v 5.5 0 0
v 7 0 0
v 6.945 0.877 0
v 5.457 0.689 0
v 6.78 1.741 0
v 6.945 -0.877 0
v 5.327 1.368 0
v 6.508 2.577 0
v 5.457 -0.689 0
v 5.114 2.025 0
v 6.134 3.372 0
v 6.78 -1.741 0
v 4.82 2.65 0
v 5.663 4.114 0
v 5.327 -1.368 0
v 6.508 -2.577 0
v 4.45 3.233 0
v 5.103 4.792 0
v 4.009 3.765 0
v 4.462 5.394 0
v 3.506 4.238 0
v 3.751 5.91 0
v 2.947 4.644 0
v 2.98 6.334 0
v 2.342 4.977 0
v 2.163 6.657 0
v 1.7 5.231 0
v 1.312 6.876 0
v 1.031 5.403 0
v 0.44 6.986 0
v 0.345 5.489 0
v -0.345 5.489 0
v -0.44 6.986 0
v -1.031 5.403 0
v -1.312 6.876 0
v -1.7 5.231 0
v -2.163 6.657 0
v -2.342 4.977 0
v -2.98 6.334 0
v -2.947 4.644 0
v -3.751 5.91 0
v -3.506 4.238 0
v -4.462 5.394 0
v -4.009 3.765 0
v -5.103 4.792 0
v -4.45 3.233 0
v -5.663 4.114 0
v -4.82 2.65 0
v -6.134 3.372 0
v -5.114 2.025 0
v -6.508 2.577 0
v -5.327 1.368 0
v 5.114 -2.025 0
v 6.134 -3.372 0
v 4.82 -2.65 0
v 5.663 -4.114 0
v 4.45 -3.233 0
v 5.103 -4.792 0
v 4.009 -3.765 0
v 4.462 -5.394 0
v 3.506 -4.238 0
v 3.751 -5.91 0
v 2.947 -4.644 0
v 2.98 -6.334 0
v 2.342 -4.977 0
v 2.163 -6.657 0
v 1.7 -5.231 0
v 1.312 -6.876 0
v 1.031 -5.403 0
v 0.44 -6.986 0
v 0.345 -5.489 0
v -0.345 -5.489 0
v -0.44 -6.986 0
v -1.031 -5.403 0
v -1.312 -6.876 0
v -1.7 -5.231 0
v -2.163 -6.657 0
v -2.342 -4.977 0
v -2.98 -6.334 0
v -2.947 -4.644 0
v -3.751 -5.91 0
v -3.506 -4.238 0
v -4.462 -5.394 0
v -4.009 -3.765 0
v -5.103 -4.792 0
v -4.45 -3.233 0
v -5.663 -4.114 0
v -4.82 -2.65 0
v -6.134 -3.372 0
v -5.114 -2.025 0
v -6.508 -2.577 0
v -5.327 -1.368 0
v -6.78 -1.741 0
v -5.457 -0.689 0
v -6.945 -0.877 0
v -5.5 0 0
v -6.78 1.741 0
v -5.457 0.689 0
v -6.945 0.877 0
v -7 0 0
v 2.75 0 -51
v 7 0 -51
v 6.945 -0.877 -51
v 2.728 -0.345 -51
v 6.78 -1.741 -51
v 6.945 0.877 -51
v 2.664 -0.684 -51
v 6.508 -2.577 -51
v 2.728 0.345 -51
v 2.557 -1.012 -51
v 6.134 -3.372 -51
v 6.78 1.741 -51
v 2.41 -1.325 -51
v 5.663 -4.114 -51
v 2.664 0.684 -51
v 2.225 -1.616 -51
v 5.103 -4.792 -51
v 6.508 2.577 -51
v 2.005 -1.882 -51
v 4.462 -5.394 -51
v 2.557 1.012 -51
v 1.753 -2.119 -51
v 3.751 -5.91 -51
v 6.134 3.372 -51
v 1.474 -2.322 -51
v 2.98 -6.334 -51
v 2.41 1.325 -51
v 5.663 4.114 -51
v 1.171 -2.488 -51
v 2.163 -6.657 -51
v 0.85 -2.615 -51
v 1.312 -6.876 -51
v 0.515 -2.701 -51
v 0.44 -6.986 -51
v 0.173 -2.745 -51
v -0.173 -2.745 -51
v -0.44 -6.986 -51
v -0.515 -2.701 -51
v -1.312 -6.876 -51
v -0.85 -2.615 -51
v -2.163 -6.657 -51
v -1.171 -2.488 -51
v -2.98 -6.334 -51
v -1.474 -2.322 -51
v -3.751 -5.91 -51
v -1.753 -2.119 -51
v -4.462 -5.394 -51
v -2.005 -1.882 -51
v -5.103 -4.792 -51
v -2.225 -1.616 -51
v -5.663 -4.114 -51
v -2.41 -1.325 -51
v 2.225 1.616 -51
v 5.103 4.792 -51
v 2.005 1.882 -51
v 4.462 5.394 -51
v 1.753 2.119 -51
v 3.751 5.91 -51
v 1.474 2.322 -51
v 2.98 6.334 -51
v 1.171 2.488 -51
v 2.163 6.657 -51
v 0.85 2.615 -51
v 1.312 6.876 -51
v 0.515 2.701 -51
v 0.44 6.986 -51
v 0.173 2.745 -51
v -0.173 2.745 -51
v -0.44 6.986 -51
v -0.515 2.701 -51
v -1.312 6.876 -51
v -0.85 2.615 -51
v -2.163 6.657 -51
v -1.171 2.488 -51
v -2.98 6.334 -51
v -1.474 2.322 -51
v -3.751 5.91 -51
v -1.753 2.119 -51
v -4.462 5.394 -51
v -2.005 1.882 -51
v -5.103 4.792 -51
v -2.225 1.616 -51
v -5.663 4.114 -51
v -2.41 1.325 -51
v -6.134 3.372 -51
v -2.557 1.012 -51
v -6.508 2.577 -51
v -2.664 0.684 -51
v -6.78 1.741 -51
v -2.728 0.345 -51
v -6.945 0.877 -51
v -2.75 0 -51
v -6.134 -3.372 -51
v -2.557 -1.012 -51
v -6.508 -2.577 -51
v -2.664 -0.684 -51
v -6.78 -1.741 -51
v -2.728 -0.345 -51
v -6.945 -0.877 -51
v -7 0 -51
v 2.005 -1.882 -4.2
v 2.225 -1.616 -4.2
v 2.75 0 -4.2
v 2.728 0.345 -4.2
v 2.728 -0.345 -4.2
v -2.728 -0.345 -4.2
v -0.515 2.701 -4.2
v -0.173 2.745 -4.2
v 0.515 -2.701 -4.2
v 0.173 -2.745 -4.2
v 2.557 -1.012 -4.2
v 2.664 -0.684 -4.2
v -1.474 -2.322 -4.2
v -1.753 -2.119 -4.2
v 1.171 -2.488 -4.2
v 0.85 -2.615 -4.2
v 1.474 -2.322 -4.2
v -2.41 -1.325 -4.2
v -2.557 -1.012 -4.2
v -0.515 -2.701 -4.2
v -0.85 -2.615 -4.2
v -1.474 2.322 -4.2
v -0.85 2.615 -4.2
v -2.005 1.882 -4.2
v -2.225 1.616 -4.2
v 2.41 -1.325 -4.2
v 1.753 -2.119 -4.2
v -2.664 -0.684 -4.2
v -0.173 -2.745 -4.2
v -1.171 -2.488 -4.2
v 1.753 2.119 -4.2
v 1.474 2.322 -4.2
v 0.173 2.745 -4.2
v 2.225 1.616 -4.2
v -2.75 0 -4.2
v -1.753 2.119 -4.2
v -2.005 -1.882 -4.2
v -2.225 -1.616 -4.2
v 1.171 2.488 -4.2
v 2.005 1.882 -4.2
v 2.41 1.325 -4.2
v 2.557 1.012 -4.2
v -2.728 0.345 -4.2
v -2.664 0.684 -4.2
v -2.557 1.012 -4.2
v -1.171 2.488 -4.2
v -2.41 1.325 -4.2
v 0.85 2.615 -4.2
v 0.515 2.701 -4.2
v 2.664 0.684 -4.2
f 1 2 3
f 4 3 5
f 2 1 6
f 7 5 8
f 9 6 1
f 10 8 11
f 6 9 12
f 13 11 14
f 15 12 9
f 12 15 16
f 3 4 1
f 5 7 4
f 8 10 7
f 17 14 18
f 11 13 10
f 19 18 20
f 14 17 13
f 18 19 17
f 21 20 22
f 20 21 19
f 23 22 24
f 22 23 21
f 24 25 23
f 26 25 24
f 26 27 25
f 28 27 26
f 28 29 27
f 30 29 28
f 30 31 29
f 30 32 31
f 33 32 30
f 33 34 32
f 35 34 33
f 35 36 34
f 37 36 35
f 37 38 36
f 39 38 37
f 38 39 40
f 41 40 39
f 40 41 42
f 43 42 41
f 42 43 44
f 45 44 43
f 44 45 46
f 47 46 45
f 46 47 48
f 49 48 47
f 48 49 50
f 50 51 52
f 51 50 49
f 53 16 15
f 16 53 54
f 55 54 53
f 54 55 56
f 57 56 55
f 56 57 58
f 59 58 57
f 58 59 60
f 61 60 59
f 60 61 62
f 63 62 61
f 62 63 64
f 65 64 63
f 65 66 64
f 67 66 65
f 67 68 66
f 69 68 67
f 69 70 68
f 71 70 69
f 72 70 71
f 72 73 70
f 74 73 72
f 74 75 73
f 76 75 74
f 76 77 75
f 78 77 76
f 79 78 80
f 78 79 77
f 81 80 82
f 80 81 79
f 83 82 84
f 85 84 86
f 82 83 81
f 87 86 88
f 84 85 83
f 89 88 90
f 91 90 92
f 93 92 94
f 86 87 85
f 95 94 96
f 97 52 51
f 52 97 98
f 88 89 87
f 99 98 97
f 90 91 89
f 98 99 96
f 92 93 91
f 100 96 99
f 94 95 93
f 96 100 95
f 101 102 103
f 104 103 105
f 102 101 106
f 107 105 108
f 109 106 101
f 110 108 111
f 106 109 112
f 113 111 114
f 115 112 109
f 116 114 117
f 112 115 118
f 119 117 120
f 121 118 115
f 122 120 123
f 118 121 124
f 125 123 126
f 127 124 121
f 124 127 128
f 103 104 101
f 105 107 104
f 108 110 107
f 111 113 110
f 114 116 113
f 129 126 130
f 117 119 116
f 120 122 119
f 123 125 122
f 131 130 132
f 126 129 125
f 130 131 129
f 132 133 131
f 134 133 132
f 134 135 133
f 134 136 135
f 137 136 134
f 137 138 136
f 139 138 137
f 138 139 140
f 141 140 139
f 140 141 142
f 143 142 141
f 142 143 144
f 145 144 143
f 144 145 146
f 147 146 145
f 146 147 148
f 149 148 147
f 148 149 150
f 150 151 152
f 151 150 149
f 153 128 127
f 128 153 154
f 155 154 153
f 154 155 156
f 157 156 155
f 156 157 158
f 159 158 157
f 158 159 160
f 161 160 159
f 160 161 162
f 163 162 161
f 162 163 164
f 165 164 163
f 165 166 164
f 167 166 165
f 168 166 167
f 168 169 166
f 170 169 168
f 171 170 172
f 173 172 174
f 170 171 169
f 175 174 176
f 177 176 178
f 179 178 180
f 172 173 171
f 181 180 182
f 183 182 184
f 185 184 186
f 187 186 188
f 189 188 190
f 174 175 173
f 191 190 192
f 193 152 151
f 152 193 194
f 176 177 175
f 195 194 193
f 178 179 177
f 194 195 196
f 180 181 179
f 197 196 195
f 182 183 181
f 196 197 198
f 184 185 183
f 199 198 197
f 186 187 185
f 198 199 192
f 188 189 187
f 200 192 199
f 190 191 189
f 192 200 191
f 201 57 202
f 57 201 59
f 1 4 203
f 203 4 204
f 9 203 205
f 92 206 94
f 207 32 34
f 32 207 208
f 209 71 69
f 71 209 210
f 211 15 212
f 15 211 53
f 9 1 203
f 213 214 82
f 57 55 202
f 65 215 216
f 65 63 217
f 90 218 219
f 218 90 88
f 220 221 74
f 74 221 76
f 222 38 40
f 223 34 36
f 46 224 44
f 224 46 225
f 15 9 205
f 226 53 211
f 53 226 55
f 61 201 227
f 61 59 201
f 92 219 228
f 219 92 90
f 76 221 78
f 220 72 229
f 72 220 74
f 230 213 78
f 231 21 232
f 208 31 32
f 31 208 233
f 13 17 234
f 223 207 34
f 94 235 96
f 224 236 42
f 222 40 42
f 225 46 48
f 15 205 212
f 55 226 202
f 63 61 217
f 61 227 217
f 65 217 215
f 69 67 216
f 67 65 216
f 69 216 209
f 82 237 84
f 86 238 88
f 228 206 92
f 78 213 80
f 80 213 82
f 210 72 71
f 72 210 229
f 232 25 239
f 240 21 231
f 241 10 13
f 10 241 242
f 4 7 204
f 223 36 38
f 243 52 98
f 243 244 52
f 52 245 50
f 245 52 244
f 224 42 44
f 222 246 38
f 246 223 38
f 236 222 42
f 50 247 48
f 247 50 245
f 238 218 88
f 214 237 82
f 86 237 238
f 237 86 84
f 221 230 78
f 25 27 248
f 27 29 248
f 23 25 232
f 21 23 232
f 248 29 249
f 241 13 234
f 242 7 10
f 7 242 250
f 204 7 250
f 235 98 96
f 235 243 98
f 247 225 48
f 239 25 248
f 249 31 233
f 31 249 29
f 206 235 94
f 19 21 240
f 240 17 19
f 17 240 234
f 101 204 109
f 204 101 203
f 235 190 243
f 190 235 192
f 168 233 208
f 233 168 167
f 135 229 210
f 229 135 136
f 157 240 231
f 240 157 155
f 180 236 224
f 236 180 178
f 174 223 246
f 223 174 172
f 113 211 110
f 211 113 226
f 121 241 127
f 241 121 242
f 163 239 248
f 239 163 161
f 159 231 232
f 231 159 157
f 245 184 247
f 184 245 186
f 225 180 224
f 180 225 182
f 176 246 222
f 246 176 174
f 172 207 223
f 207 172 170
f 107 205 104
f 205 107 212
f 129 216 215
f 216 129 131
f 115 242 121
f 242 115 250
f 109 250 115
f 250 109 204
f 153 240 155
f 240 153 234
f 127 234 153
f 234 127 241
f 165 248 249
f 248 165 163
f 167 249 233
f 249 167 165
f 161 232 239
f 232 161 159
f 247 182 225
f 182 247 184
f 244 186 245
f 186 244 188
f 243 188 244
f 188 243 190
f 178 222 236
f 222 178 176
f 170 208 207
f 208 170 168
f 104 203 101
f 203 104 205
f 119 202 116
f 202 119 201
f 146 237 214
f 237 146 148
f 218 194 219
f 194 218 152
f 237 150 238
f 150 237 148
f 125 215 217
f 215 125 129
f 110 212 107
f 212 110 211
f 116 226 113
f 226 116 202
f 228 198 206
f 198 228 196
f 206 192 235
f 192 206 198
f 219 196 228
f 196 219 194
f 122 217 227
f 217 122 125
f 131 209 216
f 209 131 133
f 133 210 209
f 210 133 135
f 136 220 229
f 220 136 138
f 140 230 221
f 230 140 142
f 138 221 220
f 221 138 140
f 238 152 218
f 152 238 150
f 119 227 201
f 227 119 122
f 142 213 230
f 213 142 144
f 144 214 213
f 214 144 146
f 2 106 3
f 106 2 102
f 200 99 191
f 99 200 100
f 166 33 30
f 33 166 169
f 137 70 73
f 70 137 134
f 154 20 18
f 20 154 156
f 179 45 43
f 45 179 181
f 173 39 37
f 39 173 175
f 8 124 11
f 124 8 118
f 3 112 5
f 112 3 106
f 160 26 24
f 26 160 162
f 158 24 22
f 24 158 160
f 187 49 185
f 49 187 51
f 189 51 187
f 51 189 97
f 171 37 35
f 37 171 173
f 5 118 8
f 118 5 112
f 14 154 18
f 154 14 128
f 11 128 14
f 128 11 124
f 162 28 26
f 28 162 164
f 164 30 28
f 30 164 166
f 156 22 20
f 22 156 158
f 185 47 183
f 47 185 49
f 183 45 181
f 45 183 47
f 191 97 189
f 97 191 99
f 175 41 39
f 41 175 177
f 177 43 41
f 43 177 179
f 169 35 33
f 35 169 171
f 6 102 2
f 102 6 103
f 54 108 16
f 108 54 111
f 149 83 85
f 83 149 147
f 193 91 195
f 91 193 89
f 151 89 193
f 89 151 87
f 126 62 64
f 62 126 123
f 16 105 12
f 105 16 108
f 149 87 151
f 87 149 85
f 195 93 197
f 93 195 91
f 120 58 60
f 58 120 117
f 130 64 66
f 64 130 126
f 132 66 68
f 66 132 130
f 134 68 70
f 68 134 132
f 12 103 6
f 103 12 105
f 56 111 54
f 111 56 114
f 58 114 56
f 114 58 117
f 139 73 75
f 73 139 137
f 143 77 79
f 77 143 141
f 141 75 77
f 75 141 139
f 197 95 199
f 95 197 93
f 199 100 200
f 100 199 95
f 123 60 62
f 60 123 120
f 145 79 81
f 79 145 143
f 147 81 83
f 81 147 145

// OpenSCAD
$fn = 50;


difference() {
	union() {
		translate(v = [0, 0, -51.0000000000]) {
			cylinder(h = 51, r = 7.0000000000);
		}
		cylinder(h = 0, r = 10.0000000000);
	}
	union() {
		translate(v = [0, 0, 0]) {
			rotate(a = [0, 0, 0]) {
				difference() {
					union() {
						#translate(v = [0, 0, -51.0000000000]) {
							cylinder(h = 51, r = 2.2500000000);
						}
						#translate(v = [0, 0, -4.2000000000]) {
							cylinder(h = 4.2000000000, r = 7.0000000000, r1 = 2.7500000000, r2 = 5.5000000000);
						}
						#translate(v = [0, 0, -51.0000000000]) {
							cylinder(h = 51, r = 2.7500000000);
						}
						#translate(v = [0, 0, -51.0000000000]) {
							cylinder(h = 51, r = 2.2500000000);
						}
					}
					union();
				}
			}
		}
	}
}
